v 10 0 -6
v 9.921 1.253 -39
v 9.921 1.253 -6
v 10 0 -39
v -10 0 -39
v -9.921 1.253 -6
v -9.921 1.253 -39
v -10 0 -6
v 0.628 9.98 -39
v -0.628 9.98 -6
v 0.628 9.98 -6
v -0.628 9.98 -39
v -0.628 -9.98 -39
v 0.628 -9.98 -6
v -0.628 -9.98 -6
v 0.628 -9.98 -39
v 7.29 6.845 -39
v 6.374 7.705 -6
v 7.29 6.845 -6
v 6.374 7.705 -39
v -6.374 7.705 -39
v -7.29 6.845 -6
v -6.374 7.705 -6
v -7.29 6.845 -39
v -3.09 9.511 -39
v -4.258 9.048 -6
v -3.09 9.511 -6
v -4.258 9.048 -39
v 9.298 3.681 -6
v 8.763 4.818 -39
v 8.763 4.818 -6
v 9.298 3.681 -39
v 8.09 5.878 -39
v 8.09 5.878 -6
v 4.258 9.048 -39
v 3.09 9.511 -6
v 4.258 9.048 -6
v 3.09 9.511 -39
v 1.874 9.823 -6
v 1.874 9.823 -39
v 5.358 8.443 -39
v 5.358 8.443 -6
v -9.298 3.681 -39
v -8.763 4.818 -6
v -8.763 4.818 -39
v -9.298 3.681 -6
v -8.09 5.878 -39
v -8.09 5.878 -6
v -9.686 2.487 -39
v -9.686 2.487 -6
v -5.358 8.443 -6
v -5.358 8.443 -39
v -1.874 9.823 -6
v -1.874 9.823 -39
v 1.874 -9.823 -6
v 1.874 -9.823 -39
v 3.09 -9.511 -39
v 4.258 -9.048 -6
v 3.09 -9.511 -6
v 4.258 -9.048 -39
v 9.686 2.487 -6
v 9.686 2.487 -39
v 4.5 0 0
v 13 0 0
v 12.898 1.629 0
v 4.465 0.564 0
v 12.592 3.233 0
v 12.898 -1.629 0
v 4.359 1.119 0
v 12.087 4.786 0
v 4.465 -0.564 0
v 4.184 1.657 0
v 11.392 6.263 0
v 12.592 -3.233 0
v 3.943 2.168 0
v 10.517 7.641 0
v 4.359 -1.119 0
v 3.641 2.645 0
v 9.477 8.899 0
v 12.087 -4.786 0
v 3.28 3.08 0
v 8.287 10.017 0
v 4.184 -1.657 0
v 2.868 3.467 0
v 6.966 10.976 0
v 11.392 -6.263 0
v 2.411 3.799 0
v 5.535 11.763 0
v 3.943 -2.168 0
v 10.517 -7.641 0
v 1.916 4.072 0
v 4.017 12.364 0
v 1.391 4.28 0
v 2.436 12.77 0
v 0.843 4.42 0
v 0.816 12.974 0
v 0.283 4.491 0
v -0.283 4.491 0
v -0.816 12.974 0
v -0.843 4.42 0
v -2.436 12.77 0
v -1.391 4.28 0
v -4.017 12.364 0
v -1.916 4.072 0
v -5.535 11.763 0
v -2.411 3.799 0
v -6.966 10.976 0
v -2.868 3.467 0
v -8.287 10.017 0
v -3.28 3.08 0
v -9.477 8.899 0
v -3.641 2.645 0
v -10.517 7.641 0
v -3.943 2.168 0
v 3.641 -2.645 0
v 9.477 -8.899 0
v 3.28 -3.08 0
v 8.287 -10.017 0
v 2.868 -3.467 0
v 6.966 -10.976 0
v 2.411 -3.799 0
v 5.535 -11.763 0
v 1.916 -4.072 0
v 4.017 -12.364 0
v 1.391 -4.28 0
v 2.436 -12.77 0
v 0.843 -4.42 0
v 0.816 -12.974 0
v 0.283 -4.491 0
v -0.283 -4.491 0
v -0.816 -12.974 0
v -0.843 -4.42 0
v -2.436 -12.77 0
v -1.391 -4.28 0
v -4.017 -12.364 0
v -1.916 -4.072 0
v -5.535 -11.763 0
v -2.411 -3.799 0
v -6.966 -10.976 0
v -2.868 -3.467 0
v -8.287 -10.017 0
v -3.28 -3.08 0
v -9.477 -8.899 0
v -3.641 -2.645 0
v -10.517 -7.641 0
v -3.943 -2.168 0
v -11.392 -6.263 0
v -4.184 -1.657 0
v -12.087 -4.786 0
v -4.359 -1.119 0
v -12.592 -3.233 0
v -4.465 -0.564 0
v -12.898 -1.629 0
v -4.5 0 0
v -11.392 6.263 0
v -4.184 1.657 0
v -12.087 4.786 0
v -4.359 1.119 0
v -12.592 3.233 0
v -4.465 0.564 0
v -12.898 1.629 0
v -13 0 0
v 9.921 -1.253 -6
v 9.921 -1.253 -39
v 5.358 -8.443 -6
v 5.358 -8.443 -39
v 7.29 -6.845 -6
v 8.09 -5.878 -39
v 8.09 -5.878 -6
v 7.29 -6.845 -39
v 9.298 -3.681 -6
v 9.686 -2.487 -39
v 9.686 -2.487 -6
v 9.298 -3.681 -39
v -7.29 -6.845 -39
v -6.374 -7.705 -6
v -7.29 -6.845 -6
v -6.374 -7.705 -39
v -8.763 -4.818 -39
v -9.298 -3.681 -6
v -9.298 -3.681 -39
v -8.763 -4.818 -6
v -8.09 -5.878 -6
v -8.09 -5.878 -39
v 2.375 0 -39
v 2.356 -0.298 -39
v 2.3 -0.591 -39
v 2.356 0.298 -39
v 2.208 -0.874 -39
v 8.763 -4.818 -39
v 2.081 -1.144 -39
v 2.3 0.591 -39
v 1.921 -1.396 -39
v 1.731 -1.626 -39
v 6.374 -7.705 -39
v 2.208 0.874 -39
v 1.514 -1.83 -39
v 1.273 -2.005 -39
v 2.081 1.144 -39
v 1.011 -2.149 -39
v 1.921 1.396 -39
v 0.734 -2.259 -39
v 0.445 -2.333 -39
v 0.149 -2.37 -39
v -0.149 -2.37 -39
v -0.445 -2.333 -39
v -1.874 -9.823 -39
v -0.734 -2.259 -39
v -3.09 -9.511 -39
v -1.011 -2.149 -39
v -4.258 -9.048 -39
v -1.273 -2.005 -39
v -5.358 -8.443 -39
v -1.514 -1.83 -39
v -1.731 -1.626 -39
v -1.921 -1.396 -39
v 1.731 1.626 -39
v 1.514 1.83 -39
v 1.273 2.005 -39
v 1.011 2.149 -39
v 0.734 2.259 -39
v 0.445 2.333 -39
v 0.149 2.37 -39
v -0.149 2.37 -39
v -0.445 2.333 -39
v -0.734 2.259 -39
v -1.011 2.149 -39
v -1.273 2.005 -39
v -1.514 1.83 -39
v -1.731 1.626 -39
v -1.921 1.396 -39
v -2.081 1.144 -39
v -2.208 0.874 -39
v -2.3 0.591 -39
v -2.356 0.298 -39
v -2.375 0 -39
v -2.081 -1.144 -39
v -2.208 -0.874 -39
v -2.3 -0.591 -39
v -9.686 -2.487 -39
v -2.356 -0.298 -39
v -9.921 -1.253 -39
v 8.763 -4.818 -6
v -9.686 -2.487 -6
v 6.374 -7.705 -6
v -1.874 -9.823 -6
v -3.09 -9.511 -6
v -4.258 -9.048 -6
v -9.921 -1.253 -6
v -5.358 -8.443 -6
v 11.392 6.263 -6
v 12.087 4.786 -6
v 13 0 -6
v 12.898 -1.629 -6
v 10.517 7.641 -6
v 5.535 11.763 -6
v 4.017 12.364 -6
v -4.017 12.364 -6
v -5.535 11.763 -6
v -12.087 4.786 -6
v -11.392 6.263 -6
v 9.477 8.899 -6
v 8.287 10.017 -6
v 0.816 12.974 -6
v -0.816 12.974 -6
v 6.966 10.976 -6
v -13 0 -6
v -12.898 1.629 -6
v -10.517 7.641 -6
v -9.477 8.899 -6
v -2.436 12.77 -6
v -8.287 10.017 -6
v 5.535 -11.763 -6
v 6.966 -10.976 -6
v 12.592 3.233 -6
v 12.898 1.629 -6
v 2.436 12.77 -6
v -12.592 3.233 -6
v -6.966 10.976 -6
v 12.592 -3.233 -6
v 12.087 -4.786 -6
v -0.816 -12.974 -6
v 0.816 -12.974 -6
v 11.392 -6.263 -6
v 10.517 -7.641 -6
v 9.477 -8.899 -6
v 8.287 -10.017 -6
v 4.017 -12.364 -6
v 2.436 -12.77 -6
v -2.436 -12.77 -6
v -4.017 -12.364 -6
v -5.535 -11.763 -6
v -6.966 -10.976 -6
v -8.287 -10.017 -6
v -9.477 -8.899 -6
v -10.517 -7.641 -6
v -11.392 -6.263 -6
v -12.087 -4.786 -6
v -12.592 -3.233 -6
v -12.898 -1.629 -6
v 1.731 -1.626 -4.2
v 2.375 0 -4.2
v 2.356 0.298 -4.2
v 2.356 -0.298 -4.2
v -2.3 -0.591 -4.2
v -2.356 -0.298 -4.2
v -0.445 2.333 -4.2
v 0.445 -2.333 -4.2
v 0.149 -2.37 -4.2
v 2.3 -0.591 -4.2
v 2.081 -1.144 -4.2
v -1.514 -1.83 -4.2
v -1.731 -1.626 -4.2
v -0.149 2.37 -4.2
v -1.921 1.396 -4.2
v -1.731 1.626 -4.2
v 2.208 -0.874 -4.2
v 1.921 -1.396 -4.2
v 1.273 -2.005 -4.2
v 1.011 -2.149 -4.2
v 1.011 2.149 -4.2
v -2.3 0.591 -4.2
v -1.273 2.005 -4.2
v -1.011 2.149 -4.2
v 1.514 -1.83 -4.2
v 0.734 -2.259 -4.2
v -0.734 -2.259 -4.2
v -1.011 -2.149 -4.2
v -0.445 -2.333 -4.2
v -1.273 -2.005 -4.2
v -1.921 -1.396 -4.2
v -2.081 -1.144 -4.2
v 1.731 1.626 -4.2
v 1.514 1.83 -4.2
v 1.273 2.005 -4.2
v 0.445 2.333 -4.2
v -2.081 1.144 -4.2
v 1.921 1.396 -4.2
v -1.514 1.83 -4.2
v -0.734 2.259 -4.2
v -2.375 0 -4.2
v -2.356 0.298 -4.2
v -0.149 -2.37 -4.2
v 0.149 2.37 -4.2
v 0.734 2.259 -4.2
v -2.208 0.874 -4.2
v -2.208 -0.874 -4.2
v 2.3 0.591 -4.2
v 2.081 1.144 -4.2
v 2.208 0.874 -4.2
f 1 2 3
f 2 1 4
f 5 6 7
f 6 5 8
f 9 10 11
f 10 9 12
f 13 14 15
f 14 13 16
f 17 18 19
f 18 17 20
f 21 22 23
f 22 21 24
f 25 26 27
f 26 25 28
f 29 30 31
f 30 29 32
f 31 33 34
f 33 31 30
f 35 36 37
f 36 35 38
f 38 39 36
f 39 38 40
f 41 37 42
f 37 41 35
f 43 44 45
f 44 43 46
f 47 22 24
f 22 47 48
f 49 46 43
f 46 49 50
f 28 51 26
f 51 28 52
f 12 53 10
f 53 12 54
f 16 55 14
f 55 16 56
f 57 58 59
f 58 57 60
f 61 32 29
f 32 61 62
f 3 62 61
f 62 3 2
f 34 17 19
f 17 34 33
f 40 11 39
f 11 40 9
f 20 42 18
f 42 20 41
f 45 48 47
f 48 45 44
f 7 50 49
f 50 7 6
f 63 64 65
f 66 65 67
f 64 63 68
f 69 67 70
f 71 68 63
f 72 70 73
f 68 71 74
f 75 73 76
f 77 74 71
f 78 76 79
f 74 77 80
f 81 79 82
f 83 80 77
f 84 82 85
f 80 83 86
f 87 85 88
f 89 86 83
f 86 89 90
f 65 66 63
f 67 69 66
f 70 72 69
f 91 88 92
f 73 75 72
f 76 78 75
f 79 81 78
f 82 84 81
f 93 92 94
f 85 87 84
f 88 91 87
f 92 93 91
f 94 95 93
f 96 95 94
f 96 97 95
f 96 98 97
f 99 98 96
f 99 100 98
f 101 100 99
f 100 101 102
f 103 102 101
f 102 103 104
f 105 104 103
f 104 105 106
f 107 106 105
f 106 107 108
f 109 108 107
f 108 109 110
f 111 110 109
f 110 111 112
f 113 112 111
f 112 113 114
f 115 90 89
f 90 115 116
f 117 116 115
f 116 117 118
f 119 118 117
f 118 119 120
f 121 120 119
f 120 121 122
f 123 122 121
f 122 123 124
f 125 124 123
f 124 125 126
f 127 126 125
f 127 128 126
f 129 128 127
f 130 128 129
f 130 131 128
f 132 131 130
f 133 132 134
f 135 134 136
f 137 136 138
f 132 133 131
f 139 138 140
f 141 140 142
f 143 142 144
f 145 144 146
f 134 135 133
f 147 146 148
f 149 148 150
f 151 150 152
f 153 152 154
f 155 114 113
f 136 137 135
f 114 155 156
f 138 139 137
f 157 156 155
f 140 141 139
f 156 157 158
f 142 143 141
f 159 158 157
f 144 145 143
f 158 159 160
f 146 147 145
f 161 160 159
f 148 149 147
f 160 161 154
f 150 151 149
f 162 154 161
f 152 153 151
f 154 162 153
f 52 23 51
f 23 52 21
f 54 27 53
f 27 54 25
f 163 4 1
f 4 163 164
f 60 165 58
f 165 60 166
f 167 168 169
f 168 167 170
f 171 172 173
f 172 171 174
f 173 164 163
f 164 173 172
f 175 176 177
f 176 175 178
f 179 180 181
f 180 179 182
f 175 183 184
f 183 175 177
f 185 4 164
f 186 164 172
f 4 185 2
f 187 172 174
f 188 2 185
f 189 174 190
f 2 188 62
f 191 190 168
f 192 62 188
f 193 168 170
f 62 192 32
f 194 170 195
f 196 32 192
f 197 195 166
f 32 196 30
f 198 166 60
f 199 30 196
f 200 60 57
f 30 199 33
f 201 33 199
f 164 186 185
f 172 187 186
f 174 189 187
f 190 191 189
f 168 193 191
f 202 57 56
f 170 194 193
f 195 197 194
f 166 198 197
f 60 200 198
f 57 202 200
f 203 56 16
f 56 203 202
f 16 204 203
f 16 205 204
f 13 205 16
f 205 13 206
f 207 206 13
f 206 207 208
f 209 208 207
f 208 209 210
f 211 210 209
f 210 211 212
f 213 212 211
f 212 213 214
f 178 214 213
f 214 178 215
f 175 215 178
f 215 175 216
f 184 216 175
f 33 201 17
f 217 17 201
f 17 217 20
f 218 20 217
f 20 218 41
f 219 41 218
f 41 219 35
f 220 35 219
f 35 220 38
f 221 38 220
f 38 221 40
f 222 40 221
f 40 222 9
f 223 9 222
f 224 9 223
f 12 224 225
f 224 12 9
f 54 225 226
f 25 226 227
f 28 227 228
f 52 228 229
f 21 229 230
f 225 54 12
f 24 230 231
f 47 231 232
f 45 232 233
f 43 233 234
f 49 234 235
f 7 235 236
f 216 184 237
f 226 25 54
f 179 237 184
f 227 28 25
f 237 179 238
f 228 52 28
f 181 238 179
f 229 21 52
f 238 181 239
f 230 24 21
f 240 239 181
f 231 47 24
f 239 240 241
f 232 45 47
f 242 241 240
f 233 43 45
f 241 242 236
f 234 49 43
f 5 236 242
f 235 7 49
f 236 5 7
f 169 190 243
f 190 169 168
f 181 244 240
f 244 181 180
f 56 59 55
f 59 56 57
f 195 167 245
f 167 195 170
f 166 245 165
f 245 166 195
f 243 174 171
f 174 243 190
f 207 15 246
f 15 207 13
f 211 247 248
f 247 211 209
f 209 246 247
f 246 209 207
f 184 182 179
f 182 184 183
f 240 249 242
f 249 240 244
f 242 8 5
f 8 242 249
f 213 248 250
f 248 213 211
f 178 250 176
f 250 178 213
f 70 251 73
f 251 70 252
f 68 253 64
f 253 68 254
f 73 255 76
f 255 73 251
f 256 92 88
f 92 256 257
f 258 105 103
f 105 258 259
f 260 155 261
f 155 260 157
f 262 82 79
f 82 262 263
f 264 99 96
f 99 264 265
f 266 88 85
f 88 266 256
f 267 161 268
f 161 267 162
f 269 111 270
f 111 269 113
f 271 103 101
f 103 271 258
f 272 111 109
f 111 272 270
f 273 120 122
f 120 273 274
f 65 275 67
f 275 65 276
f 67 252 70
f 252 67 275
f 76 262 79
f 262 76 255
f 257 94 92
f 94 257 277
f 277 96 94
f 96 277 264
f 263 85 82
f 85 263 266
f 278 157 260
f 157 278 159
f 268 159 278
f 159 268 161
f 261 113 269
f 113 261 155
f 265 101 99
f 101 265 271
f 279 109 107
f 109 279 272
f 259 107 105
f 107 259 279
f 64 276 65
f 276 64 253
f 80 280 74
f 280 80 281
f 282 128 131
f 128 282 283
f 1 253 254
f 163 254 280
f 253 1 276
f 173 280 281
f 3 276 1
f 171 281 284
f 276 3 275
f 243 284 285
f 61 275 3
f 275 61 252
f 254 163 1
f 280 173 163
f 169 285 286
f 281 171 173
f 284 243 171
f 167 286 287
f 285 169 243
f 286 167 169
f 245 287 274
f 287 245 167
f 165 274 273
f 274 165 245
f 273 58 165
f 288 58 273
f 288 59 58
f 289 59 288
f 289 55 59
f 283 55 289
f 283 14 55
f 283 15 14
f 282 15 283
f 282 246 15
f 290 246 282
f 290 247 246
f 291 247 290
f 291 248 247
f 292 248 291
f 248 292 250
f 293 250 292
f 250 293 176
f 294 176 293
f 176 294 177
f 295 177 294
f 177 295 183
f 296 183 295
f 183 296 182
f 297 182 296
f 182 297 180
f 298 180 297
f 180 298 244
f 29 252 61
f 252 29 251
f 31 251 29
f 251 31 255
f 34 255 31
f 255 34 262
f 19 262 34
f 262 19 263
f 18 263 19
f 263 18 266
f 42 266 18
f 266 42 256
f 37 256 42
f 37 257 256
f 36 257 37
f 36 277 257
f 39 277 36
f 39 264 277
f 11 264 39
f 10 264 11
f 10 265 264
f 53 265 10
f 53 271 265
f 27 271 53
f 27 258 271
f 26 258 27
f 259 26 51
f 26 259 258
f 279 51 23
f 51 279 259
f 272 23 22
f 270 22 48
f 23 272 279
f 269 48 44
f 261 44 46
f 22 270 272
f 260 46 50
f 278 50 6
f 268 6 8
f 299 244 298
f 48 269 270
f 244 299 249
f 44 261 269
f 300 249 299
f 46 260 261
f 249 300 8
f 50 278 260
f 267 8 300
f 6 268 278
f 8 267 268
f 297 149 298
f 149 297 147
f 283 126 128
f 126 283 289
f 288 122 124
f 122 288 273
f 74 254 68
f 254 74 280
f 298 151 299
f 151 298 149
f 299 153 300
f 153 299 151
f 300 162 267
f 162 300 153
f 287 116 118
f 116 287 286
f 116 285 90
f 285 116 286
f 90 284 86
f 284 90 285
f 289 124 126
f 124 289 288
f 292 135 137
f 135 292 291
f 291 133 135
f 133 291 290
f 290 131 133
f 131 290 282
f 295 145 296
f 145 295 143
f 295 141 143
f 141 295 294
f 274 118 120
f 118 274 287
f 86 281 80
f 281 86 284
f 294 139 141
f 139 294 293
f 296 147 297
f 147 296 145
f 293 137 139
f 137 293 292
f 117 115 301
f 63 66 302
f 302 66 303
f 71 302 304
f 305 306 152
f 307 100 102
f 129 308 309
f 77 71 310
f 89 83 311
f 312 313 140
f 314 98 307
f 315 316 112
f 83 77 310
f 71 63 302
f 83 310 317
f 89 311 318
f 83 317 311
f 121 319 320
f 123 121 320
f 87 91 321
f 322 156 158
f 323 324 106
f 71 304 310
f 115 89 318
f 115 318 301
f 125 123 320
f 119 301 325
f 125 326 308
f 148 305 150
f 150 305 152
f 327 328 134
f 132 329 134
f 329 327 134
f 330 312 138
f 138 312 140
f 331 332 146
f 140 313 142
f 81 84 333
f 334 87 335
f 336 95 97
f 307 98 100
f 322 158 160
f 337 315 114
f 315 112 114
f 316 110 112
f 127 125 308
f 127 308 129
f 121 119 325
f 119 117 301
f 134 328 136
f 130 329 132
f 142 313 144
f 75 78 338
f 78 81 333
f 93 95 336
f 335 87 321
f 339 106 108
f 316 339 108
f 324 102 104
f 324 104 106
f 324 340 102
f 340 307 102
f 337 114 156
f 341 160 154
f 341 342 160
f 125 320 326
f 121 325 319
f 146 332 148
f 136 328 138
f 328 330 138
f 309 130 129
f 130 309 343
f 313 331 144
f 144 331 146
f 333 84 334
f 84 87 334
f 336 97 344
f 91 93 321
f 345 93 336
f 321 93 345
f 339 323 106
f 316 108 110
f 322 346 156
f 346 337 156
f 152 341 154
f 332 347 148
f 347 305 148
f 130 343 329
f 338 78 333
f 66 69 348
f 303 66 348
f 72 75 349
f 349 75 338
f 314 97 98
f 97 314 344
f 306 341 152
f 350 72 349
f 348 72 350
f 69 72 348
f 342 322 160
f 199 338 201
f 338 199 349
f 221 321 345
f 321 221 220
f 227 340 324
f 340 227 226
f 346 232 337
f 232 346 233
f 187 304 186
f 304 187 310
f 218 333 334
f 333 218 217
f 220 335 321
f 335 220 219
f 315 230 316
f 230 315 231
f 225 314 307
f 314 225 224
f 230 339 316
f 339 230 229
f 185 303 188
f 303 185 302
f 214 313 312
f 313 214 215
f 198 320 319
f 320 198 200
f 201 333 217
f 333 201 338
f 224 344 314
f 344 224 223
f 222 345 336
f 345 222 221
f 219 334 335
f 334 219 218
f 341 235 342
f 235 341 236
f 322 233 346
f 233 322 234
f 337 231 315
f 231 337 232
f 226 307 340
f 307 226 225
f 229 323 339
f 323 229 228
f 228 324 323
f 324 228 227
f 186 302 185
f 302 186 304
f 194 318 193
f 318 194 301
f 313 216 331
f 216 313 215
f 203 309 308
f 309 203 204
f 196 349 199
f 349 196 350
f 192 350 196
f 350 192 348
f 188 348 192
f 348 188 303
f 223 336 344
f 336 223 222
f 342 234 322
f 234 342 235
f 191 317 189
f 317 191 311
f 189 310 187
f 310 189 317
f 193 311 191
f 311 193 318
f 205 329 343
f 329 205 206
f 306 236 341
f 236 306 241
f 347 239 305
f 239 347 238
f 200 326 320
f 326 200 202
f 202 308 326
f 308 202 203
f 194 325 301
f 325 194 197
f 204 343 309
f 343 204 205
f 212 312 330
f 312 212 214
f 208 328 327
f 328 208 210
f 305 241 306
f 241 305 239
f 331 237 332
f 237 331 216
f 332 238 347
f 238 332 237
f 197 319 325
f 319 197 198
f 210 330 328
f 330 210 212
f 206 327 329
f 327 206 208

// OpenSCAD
$fn = 50;


difference() {
	union() {
		translate(v = [0, 0, -39.0000000000]) {
			cylinder(h = 39, r = 10.0000000000);
		}
		translate(v = [0, 0, -6.0000000000]) {
			cylinder(h = 6, r = 13.0000000000);
		}
	}
	union() {
		translate(v = [0, 0, 0]) {
			rotate(a = [0, 0, 0]) {
				difference() {
					union() {
						#translate(v = [0, 0, -39.0000000000]) {
							cylinder(h = 39, r = 2.2500000000);
						}
						#translate(v = [0, 0, -4.2000000000]) {
							cylinder(h = 4.2000000000, r1 = 2.3750000000, r2 = 4.5000000000);
						}
						#translate(v = [0, 0, -39.0000000000]) {
							cylinder(h = 39, r = 2.3750000000);
						}
						#translate(v = [0, 0, -39.0000000000]) {
							cylinder(h = 39, r = 2.2500000000);
						}
					}
					union();
				}
			}
		}
	}
}
